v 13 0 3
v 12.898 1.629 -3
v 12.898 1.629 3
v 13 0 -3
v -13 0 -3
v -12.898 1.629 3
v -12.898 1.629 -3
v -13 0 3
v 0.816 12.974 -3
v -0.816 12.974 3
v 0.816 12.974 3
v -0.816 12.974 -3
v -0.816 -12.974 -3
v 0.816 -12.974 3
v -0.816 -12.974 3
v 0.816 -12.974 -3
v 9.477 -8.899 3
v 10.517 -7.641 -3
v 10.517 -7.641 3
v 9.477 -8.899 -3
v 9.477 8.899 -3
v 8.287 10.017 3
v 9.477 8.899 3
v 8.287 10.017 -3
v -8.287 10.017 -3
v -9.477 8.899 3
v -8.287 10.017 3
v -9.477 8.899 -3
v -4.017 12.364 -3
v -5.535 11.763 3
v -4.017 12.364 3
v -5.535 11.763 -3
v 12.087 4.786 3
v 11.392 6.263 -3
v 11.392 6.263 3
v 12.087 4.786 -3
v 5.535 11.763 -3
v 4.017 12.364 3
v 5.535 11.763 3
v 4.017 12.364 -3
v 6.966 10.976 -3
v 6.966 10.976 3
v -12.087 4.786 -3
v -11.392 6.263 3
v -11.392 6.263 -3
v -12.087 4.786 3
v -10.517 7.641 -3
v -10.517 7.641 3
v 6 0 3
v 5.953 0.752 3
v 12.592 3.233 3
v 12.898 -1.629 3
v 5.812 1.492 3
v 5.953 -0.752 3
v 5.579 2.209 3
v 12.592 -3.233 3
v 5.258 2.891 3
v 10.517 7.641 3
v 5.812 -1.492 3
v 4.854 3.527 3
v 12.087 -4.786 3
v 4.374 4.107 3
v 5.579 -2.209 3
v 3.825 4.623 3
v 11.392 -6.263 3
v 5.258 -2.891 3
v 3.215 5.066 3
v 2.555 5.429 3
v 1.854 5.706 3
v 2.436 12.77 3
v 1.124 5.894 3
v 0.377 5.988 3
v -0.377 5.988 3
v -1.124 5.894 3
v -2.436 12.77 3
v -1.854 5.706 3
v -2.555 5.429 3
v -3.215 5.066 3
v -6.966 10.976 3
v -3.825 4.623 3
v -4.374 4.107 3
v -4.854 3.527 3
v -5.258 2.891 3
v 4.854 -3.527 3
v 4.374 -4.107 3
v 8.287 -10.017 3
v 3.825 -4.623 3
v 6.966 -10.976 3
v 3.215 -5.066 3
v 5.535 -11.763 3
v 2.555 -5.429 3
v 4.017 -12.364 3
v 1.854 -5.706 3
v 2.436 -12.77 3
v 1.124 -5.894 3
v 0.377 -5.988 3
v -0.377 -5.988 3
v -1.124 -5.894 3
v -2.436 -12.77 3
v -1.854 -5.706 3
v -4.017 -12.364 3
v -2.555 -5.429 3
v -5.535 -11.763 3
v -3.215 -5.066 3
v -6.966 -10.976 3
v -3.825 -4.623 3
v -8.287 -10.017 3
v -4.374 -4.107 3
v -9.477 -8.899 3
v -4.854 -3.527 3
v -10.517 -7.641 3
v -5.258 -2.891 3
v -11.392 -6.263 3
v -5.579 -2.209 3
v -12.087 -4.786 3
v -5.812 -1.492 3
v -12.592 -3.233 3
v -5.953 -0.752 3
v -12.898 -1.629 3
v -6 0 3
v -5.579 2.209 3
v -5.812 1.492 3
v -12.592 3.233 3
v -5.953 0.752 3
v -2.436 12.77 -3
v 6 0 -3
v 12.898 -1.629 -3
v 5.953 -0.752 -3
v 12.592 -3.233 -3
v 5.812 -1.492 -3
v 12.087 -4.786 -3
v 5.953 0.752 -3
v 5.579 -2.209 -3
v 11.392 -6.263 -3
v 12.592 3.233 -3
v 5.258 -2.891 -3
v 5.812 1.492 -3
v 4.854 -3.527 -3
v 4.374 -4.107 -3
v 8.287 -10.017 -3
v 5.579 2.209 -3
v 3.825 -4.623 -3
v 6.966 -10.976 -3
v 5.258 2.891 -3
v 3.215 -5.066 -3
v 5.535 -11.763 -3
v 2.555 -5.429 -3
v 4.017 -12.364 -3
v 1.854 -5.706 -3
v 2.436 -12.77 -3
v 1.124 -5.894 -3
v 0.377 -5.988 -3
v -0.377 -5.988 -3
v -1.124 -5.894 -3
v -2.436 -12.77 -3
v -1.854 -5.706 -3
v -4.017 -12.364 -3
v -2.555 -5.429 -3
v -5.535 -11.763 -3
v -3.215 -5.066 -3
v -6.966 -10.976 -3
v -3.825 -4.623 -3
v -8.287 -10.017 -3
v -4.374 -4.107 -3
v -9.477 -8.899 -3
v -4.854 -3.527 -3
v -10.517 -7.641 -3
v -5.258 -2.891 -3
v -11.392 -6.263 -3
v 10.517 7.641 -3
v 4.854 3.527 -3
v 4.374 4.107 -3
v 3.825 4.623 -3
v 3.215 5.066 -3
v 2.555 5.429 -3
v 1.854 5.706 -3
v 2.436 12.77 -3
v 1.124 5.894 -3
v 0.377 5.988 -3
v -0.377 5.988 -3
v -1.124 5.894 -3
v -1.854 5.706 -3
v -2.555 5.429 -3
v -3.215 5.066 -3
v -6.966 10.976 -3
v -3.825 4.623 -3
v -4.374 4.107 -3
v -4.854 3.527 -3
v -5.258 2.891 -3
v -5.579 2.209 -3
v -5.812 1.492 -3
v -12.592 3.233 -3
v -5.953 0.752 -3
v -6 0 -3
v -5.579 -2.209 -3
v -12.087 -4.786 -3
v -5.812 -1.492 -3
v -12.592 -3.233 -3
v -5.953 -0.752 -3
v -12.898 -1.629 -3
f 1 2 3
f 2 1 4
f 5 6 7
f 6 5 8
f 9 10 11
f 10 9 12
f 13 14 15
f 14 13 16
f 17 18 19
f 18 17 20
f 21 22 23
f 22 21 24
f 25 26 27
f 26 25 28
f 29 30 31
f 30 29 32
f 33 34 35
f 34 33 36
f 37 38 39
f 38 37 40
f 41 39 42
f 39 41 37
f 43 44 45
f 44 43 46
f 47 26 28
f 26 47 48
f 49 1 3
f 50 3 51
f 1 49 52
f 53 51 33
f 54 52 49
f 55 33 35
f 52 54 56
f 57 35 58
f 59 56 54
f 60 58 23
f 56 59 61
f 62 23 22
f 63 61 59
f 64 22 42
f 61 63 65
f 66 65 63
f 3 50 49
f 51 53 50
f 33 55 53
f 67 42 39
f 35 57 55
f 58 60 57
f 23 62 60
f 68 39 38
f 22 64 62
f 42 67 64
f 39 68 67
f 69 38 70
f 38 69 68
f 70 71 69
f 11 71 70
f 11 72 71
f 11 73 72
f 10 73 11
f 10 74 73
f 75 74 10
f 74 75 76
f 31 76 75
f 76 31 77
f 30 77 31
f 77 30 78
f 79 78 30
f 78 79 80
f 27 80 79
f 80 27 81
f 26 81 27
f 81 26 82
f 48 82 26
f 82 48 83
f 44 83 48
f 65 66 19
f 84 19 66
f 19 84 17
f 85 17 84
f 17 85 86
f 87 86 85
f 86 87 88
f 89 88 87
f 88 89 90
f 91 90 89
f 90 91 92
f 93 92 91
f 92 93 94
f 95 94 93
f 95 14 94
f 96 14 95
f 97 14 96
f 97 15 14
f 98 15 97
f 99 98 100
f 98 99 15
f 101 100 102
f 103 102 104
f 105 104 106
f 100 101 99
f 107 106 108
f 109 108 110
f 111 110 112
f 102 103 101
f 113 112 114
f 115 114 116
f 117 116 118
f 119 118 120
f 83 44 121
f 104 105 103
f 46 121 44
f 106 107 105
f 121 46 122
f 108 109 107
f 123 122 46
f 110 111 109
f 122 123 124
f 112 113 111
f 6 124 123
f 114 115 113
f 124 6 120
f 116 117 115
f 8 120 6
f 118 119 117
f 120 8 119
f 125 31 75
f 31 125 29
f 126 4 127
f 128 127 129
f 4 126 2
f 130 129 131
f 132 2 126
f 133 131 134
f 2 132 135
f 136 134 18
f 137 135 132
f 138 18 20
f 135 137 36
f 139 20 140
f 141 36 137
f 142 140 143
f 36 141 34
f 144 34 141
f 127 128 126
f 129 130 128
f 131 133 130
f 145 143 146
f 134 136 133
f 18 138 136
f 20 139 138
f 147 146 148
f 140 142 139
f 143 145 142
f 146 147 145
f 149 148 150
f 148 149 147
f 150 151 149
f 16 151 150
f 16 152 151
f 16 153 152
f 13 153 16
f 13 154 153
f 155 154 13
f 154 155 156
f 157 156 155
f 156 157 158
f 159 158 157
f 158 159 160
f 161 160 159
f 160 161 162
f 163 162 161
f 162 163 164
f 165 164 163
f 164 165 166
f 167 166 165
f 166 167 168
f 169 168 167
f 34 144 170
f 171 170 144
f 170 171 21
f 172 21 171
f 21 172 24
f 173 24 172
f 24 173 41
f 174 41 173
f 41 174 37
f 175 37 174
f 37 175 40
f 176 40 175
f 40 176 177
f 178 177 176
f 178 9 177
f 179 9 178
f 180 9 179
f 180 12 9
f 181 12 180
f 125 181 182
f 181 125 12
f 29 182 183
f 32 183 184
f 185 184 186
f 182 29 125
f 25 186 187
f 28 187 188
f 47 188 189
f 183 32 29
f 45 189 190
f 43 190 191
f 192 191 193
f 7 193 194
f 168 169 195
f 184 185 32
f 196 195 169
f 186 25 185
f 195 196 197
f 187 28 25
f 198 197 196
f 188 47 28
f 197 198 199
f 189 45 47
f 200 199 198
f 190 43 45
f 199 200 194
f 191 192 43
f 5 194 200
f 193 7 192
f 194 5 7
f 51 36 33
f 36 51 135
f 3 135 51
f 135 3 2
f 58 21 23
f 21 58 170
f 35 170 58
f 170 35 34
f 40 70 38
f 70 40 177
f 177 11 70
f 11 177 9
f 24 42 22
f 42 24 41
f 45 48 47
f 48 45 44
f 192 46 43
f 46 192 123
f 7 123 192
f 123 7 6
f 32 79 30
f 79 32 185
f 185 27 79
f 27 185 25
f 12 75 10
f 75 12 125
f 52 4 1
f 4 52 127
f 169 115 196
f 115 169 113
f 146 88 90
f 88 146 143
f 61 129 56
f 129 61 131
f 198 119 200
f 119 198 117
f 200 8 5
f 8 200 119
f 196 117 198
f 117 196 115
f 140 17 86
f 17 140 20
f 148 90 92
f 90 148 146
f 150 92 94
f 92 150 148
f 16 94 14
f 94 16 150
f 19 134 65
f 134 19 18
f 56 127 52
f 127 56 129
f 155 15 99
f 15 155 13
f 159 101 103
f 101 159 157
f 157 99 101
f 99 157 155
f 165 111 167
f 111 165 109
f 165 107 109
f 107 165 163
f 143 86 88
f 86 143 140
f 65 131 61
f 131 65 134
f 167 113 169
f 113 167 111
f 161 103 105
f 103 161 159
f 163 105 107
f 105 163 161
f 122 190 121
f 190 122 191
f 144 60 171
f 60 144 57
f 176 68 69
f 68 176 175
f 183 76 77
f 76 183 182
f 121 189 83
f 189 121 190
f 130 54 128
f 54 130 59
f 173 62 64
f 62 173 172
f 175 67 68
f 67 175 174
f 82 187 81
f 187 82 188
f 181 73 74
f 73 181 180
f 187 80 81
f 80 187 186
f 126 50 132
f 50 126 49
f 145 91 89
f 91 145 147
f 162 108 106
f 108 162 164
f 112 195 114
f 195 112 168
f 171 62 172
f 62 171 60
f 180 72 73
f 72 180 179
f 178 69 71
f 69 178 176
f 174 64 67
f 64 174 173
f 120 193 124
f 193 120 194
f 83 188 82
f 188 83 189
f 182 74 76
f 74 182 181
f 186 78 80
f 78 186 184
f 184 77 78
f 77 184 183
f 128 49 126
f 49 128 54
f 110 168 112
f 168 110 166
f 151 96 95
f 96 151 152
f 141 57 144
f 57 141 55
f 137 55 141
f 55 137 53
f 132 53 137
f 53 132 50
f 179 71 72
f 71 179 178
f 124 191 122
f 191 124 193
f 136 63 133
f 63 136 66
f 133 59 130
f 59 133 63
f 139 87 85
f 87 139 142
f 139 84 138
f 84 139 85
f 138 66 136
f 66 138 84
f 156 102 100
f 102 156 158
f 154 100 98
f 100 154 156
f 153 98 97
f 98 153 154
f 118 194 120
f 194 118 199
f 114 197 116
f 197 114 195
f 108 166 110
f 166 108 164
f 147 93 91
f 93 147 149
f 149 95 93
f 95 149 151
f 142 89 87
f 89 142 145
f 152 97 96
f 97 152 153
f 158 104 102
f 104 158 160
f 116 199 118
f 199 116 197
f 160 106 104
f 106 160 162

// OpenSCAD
$fn = 50;


difference() {
	union() {
		translate(v = [0, 0, -3.0000000000]) {
			cylinder(h = 6, r = 13.0000000000);
		}
	}
	union() {
		translate(v = [0, 0, -100.0000000000]) {
			cylinder(h = 200, r = 6);
		}
	}
}
